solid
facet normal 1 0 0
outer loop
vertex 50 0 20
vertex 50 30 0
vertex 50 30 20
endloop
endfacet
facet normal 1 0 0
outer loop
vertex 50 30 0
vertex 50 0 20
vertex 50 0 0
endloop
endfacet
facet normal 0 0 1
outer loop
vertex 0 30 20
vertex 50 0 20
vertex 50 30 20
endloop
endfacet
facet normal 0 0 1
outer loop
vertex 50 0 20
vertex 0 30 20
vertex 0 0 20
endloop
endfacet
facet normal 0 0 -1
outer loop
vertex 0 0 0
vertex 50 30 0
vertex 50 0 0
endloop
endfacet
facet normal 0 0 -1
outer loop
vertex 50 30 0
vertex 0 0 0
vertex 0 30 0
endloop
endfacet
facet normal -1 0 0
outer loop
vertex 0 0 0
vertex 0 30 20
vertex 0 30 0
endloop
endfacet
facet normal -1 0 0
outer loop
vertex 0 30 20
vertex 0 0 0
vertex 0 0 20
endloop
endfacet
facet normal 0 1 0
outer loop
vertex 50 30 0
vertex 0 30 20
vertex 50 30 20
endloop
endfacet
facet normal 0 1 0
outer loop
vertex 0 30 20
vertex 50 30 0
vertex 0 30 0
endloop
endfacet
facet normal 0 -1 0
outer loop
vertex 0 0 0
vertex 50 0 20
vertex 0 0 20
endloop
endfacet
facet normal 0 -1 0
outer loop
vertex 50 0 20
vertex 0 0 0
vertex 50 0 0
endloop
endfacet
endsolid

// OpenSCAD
$fn = 100;

module puzzle_connector(width, height, depth, hole_diameter, hole_distance) {
  difference() {
    cube([width, height, depth]);
    
    translate([hole_distance, hole_distance, hole_distance])
    cube([width - 2 * hole_distance, height - 2 * hole_distance, depth - 2 * hole_distance]);
  }
}

puzzle_connector(width = 50, height = 30, depth = 20, hole_diameter = 8, hole_distance = 10);
